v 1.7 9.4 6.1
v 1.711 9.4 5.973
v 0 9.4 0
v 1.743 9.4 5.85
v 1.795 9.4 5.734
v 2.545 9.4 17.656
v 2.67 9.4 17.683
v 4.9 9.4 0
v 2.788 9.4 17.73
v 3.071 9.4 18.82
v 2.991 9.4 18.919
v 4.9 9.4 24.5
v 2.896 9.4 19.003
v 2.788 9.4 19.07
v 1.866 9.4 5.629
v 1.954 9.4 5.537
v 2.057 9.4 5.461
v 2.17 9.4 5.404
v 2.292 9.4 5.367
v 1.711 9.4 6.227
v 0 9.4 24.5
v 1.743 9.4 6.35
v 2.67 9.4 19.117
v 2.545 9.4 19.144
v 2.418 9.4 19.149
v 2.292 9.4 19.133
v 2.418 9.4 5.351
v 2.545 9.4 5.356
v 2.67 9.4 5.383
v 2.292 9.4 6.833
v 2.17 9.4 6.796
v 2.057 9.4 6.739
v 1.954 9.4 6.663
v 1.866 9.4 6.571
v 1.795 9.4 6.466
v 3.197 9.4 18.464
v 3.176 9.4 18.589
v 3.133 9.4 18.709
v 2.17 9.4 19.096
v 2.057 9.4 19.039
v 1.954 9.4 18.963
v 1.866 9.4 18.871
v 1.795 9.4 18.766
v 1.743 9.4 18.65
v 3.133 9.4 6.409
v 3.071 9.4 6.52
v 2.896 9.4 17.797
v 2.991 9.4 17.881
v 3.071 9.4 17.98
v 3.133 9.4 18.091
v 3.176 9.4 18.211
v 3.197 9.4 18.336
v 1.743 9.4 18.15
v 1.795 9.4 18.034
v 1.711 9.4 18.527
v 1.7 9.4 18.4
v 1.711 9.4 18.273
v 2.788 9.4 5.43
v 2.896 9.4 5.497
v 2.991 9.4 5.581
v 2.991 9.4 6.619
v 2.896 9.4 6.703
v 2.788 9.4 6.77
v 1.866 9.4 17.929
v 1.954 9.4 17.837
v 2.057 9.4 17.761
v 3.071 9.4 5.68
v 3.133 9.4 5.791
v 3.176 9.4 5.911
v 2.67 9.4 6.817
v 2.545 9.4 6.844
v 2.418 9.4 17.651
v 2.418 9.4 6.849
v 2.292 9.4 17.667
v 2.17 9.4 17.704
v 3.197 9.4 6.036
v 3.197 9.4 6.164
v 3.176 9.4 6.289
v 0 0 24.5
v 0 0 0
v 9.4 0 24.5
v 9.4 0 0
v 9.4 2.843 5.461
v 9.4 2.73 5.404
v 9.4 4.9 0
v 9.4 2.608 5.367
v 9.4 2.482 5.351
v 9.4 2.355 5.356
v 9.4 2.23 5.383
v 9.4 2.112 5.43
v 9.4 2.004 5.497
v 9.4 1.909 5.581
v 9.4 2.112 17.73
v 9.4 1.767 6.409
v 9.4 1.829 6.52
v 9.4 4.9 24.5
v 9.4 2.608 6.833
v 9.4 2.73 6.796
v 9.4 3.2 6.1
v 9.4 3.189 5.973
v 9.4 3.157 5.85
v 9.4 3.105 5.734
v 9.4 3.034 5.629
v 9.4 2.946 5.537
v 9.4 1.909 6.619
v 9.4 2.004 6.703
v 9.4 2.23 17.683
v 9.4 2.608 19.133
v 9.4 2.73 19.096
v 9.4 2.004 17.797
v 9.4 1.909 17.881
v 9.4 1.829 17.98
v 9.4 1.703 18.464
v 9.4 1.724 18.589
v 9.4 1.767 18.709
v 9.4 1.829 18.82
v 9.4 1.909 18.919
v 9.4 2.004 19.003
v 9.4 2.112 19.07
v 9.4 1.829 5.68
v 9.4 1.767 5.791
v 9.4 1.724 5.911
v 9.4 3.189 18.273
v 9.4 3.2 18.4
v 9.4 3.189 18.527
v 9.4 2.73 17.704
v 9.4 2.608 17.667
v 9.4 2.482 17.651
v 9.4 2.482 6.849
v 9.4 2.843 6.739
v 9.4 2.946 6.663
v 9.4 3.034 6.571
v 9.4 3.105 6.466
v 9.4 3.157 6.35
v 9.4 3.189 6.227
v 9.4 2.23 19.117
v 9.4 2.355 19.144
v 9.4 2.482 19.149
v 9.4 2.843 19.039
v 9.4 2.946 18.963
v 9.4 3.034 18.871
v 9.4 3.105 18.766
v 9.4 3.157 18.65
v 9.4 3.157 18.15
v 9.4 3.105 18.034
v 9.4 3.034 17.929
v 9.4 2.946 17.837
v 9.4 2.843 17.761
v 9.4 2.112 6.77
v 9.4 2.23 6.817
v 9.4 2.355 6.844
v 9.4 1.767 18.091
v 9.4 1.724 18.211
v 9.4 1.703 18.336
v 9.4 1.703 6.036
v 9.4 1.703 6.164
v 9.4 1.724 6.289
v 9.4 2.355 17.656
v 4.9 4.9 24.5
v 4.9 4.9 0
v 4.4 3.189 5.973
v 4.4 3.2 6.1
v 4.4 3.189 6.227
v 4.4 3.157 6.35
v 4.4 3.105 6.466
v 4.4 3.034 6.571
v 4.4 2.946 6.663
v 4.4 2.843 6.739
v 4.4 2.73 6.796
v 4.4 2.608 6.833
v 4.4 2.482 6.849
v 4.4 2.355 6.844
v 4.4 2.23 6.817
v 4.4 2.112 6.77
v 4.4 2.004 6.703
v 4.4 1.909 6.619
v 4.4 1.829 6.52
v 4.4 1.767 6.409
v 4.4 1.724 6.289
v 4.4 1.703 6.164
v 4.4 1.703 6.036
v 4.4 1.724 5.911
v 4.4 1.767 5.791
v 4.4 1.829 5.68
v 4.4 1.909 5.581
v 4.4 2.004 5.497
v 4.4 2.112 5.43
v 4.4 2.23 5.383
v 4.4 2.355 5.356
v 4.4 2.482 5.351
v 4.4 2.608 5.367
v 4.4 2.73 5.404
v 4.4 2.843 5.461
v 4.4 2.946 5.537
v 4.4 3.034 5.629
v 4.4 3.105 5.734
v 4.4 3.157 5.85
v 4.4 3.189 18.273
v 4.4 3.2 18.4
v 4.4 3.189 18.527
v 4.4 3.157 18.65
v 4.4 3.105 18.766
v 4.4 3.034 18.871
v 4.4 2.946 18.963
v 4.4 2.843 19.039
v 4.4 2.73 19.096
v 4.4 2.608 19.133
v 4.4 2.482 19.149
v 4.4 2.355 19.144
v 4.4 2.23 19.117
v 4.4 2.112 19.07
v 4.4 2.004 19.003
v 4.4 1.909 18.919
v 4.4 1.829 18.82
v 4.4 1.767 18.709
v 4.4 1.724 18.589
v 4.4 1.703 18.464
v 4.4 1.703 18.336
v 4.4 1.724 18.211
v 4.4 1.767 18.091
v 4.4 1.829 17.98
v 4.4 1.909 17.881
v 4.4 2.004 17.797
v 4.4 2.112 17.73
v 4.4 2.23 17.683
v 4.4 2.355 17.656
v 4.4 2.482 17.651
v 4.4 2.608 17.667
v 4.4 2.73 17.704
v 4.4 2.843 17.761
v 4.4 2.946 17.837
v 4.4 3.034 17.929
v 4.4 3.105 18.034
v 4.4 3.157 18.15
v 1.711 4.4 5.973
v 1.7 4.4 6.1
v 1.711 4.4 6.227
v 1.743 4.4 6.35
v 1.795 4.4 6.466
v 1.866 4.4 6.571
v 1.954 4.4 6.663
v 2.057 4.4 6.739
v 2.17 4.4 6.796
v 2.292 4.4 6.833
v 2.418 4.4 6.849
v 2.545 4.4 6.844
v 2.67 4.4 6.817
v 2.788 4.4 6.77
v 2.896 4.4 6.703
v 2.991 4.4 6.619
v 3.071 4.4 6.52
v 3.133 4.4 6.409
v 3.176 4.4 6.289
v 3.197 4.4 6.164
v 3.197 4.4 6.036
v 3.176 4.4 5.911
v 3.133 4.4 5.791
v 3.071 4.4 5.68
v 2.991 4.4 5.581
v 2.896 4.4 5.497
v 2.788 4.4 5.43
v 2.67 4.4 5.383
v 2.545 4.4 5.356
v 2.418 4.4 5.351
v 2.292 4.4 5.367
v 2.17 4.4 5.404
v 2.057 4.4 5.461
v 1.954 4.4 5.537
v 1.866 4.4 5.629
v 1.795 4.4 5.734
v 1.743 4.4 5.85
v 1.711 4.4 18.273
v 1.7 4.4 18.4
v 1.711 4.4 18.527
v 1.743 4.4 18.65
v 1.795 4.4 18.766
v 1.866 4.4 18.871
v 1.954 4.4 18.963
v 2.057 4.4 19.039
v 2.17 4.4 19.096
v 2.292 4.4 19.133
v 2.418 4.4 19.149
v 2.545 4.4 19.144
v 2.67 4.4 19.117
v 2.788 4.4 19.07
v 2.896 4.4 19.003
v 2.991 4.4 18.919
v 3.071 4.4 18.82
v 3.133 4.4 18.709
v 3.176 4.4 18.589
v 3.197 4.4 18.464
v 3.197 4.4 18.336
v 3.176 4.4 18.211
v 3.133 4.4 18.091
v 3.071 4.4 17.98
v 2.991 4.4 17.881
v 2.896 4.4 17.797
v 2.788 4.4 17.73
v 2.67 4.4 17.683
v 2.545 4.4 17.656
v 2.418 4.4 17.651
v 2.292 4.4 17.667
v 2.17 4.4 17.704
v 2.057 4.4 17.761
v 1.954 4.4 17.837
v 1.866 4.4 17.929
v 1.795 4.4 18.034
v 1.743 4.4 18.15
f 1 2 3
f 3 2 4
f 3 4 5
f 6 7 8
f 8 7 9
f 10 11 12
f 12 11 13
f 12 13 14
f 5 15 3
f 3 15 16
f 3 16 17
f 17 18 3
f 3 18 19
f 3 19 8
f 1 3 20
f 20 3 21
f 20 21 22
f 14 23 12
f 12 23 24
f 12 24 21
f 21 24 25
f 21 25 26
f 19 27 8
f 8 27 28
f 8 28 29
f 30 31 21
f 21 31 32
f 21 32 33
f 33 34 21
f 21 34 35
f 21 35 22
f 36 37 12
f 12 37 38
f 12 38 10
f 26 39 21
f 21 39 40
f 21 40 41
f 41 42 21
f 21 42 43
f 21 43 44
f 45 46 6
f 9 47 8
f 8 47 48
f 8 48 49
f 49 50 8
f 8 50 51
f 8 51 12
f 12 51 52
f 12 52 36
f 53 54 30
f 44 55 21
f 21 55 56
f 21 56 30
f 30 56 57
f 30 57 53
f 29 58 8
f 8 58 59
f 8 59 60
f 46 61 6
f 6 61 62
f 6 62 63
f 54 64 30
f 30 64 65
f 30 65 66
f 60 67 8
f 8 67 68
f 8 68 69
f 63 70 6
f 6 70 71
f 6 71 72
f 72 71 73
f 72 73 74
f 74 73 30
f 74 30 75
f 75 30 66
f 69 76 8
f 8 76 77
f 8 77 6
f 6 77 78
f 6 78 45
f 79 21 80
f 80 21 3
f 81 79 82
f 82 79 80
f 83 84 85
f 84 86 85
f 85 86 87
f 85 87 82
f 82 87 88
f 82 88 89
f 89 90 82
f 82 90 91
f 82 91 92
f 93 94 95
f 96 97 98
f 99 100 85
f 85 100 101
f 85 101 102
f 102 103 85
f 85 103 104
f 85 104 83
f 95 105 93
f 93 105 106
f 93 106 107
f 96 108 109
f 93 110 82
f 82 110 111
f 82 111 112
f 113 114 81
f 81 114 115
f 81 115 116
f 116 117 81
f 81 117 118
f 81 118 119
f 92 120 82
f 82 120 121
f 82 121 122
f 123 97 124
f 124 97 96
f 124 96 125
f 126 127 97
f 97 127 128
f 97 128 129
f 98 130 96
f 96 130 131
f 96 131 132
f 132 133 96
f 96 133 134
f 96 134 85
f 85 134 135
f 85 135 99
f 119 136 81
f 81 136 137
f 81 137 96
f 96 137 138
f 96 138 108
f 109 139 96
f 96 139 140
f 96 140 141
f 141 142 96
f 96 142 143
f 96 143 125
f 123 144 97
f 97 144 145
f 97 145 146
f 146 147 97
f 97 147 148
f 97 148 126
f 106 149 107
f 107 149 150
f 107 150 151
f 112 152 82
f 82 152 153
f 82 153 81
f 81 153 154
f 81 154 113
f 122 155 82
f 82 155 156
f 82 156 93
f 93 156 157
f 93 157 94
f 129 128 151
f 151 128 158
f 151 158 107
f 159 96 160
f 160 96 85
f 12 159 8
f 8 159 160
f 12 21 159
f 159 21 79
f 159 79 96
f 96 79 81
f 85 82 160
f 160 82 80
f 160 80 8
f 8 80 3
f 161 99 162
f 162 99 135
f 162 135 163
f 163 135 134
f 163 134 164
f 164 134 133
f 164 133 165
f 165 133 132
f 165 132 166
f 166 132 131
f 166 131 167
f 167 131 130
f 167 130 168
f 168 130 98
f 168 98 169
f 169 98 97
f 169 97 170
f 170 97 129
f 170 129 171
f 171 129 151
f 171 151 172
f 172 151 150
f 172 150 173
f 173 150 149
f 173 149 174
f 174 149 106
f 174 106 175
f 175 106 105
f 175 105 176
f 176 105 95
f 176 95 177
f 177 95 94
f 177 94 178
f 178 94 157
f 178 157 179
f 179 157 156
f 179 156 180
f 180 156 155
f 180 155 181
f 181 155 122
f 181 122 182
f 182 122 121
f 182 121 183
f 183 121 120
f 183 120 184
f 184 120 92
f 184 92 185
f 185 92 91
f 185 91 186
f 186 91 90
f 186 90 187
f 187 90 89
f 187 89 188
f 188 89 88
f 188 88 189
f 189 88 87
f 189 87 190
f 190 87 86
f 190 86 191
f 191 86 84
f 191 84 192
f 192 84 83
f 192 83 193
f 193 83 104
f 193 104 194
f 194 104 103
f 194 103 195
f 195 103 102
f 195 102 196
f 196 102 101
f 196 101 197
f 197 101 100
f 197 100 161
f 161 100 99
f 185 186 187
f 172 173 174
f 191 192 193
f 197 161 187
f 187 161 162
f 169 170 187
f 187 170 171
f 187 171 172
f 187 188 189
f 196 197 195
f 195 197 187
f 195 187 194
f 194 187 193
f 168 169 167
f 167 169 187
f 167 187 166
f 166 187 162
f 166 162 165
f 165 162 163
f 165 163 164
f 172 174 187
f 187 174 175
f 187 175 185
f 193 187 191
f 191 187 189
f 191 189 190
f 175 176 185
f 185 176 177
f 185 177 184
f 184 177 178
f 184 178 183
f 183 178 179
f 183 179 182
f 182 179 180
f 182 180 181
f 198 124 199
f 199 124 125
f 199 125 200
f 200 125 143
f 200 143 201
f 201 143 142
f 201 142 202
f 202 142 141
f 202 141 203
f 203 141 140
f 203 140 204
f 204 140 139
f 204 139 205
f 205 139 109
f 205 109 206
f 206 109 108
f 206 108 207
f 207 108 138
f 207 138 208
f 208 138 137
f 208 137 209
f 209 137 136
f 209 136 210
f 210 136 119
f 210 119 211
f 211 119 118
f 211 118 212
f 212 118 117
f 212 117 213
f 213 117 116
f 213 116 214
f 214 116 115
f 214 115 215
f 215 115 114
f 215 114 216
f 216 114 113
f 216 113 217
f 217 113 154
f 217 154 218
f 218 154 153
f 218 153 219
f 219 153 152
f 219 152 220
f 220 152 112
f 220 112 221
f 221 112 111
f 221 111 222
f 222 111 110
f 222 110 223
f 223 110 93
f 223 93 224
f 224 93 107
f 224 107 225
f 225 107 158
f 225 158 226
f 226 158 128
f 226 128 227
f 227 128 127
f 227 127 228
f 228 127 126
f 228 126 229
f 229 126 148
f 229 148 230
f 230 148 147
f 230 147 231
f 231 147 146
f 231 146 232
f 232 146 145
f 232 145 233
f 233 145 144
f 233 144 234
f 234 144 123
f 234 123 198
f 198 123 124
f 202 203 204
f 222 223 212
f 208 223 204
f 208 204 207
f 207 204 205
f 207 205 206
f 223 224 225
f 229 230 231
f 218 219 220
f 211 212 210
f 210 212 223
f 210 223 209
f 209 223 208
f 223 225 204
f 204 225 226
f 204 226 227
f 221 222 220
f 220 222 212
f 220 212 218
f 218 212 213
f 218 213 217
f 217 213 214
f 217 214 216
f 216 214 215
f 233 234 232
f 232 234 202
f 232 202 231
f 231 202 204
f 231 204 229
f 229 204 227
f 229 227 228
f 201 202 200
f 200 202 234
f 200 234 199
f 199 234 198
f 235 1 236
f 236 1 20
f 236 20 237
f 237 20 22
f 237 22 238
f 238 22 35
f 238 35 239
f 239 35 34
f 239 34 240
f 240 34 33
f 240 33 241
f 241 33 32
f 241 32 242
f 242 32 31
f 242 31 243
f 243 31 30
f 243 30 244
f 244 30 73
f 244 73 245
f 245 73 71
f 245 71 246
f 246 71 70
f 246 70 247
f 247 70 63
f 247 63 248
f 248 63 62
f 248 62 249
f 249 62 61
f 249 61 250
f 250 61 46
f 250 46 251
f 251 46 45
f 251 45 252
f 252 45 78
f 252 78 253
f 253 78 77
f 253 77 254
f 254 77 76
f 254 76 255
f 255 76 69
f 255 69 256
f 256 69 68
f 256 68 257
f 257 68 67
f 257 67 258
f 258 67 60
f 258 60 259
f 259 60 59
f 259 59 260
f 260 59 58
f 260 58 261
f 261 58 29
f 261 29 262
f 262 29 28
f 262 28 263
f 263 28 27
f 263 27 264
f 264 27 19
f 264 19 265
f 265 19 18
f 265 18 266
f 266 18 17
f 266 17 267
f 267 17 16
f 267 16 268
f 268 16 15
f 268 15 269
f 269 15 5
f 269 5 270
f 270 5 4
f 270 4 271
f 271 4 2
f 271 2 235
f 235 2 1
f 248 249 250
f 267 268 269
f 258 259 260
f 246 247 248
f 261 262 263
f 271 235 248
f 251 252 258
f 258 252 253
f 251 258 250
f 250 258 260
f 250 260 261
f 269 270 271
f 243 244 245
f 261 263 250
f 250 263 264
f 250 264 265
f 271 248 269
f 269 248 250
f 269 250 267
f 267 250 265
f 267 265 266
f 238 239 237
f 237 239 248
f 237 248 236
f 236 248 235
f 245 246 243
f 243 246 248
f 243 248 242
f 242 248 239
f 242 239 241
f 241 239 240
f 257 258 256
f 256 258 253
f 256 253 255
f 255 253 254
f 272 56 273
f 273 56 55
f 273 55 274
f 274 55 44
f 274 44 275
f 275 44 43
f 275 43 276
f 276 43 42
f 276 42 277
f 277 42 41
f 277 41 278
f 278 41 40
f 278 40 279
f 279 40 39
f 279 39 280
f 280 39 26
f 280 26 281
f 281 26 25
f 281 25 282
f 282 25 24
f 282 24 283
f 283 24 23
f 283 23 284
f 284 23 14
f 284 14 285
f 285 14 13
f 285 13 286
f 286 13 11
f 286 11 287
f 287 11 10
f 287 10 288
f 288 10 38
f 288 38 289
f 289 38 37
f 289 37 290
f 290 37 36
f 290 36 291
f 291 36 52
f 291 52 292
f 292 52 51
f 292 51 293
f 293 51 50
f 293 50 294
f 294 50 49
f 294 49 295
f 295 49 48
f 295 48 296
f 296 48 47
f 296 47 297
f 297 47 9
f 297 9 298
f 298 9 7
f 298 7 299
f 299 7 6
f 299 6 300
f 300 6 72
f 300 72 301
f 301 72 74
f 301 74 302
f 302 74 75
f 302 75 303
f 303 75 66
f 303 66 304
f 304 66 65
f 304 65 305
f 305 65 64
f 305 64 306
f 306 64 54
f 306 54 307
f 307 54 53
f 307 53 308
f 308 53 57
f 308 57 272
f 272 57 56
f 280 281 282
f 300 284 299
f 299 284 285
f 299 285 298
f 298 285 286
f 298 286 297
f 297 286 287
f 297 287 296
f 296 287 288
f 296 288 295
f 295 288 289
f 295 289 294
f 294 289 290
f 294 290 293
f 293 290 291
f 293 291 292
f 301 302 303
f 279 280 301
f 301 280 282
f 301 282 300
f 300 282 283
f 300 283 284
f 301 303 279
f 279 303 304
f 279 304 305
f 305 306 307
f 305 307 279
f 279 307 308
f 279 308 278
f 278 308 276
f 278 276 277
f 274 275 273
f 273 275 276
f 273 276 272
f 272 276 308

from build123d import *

# Parameters (mm, degrees)
EXTRUDE_1_DEPTH     = 24.5
SKETCH_2_R          = 0.75
CUT_EXTRUDE_1_DEPTH = 5
SKETCH_3_R          = 0.75
CUT_EXTRUDE_2_DEPTH = 5


with BuildPart() as part:
    # 草圖1 → 填料-伸長1 (new body)
    with BuildSketch(Plane.XY):
        Polygon((0, 9.4), (0, 0), (9.4, 0), (9.4, 4.9), (4.9, 4.9), (4.9, 9.4), align=None)
    extrude(amount=EXTRUDE_1_DEPTH)

    # 草圖2 → 除料-伸長1 (cut)
    with BuildSketch(Plane(origin=(9.4, 0, 0), x_dir=(0, 0, -1), z_dir=(1, 0, 0))):
        with Locations(Location((-6.1, 2.45, 0), (0, 0, 90))):
            Circle(SKETCH_2_R)
        with Locations(Location((-18.4, 2.45, 0), (0, 0, 90))):
            Circle(SKETCH_2_R)
    extrude(amount=-CUT_EXTRUDE_1_DEPTH, mode=Mode.SUBTRACT)

    # 草圖3 → 除料-伸長2 (cut)
    with BuildSketch(Plane(origin=(0, 9.4, 0), x_dir=(1, 0, 0), z_dir=(0, 1, 0))):
        with Locations(Location((2.45, -6.1, 0), (0, 0, 180))):
            Circle(SKETCH_3_R)
        with Locations(Location((2.45, -18.4, 0), (0, 0, 180))):
            Circle(SKETCH_3_R)
    extrude(amount=-CUT_EXTRUDE_2_DEPTH, mode=Mode.SUBTRACT)


solid = part.part
